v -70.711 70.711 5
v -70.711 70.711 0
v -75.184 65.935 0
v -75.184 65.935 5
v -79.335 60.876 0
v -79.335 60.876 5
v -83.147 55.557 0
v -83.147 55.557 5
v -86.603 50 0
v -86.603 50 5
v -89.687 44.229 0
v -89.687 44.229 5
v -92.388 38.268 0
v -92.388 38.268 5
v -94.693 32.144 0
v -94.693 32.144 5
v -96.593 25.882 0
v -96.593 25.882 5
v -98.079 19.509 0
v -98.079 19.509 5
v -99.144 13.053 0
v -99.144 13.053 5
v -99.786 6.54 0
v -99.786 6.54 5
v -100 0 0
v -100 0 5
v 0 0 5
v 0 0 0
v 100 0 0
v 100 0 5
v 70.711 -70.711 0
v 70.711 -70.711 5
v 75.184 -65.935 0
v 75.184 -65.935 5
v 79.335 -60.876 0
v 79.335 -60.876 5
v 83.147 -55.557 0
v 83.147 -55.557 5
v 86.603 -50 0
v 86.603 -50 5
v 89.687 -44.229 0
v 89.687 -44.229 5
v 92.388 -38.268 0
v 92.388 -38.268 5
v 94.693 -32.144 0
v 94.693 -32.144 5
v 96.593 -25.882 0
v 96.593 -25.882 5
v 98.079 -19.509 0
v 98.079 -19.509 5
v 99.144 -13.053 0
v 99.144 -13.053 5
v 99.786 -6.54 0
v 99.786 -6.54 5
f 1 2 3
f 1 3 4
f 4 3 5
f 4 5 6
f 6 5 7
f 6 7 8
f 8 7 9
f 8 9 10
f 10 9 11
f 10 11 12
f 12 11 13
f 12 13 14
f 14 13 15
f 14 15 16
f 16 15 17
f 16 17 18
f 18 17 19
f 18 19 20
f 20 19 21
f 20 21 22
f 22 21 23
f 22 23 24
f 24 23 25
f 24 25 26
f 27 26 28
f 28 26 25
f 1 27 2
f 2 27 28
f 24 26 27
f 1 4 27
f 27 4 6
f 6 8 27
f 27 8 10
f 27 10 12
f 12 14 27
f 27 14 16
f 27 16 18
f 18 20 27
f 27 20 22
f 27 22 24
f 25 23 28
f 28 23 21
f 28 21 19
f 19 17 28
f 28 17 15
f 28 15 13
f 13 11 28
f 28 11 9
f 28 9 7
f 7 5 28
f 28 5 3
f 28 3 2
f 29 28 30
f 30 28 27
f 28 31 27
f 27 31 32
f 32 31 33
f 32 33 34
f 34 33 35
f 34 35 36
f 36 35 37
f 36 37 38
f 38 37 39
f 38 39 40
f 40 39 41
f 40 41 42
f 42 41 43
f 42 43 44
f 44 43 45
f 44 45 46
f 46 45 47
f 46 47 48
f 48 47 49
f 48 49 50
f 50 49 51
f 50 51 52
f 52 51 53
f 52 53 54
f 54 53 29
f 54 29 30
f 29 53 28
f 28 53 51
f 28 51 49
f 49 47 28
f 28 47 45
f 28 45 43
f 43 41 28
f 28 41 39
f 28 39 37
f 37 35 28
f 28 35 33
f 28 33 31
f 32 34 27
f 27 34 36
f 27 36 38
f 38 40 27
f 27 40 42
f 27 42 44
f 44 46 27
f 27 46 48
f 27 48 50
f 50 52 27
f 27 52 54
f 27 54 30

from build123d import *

# Parameters (mm, degrees)
BOSS_EXTRUDE1_DEPTH = 5
BOSS_EXTRUDE2_DEPTH = 5


with BuildPart() as part:
    # Sketch1 → Boss-Extrude1 (new body)
    with BuildSketch(Plane.XY):
        with BuildLine():
            Line((0, 0), (-70.710678119, 70.710678119))
            ThreePointArc((-70.710678119, 70.710678119), (-92.387953251, 38.268343237), (-100, 0))
            Line((-100, 0), (0, 0))
        make_face()
    extrude(amount=BOSS_EXTRUDE1_DEPTH)


with BuildPart() as body_2:
    # Sketch2 → Boss-Extrude2 (new body)
    with BuildSketch(Plane.XY):
        with BuildLine():
            Line((0, 0), (70.710678119, -70.710678119))
            ThreePointArc((70.710678119, -70.710678119), (92.387953251, -38.268343237), (100, 0))
            Line((100, 0), (0, 0))
        make_face()
    extrude(amount=BOSS_EXTRUDE2_DEPTH)


solid = Compound([part.part, body_2.part])
